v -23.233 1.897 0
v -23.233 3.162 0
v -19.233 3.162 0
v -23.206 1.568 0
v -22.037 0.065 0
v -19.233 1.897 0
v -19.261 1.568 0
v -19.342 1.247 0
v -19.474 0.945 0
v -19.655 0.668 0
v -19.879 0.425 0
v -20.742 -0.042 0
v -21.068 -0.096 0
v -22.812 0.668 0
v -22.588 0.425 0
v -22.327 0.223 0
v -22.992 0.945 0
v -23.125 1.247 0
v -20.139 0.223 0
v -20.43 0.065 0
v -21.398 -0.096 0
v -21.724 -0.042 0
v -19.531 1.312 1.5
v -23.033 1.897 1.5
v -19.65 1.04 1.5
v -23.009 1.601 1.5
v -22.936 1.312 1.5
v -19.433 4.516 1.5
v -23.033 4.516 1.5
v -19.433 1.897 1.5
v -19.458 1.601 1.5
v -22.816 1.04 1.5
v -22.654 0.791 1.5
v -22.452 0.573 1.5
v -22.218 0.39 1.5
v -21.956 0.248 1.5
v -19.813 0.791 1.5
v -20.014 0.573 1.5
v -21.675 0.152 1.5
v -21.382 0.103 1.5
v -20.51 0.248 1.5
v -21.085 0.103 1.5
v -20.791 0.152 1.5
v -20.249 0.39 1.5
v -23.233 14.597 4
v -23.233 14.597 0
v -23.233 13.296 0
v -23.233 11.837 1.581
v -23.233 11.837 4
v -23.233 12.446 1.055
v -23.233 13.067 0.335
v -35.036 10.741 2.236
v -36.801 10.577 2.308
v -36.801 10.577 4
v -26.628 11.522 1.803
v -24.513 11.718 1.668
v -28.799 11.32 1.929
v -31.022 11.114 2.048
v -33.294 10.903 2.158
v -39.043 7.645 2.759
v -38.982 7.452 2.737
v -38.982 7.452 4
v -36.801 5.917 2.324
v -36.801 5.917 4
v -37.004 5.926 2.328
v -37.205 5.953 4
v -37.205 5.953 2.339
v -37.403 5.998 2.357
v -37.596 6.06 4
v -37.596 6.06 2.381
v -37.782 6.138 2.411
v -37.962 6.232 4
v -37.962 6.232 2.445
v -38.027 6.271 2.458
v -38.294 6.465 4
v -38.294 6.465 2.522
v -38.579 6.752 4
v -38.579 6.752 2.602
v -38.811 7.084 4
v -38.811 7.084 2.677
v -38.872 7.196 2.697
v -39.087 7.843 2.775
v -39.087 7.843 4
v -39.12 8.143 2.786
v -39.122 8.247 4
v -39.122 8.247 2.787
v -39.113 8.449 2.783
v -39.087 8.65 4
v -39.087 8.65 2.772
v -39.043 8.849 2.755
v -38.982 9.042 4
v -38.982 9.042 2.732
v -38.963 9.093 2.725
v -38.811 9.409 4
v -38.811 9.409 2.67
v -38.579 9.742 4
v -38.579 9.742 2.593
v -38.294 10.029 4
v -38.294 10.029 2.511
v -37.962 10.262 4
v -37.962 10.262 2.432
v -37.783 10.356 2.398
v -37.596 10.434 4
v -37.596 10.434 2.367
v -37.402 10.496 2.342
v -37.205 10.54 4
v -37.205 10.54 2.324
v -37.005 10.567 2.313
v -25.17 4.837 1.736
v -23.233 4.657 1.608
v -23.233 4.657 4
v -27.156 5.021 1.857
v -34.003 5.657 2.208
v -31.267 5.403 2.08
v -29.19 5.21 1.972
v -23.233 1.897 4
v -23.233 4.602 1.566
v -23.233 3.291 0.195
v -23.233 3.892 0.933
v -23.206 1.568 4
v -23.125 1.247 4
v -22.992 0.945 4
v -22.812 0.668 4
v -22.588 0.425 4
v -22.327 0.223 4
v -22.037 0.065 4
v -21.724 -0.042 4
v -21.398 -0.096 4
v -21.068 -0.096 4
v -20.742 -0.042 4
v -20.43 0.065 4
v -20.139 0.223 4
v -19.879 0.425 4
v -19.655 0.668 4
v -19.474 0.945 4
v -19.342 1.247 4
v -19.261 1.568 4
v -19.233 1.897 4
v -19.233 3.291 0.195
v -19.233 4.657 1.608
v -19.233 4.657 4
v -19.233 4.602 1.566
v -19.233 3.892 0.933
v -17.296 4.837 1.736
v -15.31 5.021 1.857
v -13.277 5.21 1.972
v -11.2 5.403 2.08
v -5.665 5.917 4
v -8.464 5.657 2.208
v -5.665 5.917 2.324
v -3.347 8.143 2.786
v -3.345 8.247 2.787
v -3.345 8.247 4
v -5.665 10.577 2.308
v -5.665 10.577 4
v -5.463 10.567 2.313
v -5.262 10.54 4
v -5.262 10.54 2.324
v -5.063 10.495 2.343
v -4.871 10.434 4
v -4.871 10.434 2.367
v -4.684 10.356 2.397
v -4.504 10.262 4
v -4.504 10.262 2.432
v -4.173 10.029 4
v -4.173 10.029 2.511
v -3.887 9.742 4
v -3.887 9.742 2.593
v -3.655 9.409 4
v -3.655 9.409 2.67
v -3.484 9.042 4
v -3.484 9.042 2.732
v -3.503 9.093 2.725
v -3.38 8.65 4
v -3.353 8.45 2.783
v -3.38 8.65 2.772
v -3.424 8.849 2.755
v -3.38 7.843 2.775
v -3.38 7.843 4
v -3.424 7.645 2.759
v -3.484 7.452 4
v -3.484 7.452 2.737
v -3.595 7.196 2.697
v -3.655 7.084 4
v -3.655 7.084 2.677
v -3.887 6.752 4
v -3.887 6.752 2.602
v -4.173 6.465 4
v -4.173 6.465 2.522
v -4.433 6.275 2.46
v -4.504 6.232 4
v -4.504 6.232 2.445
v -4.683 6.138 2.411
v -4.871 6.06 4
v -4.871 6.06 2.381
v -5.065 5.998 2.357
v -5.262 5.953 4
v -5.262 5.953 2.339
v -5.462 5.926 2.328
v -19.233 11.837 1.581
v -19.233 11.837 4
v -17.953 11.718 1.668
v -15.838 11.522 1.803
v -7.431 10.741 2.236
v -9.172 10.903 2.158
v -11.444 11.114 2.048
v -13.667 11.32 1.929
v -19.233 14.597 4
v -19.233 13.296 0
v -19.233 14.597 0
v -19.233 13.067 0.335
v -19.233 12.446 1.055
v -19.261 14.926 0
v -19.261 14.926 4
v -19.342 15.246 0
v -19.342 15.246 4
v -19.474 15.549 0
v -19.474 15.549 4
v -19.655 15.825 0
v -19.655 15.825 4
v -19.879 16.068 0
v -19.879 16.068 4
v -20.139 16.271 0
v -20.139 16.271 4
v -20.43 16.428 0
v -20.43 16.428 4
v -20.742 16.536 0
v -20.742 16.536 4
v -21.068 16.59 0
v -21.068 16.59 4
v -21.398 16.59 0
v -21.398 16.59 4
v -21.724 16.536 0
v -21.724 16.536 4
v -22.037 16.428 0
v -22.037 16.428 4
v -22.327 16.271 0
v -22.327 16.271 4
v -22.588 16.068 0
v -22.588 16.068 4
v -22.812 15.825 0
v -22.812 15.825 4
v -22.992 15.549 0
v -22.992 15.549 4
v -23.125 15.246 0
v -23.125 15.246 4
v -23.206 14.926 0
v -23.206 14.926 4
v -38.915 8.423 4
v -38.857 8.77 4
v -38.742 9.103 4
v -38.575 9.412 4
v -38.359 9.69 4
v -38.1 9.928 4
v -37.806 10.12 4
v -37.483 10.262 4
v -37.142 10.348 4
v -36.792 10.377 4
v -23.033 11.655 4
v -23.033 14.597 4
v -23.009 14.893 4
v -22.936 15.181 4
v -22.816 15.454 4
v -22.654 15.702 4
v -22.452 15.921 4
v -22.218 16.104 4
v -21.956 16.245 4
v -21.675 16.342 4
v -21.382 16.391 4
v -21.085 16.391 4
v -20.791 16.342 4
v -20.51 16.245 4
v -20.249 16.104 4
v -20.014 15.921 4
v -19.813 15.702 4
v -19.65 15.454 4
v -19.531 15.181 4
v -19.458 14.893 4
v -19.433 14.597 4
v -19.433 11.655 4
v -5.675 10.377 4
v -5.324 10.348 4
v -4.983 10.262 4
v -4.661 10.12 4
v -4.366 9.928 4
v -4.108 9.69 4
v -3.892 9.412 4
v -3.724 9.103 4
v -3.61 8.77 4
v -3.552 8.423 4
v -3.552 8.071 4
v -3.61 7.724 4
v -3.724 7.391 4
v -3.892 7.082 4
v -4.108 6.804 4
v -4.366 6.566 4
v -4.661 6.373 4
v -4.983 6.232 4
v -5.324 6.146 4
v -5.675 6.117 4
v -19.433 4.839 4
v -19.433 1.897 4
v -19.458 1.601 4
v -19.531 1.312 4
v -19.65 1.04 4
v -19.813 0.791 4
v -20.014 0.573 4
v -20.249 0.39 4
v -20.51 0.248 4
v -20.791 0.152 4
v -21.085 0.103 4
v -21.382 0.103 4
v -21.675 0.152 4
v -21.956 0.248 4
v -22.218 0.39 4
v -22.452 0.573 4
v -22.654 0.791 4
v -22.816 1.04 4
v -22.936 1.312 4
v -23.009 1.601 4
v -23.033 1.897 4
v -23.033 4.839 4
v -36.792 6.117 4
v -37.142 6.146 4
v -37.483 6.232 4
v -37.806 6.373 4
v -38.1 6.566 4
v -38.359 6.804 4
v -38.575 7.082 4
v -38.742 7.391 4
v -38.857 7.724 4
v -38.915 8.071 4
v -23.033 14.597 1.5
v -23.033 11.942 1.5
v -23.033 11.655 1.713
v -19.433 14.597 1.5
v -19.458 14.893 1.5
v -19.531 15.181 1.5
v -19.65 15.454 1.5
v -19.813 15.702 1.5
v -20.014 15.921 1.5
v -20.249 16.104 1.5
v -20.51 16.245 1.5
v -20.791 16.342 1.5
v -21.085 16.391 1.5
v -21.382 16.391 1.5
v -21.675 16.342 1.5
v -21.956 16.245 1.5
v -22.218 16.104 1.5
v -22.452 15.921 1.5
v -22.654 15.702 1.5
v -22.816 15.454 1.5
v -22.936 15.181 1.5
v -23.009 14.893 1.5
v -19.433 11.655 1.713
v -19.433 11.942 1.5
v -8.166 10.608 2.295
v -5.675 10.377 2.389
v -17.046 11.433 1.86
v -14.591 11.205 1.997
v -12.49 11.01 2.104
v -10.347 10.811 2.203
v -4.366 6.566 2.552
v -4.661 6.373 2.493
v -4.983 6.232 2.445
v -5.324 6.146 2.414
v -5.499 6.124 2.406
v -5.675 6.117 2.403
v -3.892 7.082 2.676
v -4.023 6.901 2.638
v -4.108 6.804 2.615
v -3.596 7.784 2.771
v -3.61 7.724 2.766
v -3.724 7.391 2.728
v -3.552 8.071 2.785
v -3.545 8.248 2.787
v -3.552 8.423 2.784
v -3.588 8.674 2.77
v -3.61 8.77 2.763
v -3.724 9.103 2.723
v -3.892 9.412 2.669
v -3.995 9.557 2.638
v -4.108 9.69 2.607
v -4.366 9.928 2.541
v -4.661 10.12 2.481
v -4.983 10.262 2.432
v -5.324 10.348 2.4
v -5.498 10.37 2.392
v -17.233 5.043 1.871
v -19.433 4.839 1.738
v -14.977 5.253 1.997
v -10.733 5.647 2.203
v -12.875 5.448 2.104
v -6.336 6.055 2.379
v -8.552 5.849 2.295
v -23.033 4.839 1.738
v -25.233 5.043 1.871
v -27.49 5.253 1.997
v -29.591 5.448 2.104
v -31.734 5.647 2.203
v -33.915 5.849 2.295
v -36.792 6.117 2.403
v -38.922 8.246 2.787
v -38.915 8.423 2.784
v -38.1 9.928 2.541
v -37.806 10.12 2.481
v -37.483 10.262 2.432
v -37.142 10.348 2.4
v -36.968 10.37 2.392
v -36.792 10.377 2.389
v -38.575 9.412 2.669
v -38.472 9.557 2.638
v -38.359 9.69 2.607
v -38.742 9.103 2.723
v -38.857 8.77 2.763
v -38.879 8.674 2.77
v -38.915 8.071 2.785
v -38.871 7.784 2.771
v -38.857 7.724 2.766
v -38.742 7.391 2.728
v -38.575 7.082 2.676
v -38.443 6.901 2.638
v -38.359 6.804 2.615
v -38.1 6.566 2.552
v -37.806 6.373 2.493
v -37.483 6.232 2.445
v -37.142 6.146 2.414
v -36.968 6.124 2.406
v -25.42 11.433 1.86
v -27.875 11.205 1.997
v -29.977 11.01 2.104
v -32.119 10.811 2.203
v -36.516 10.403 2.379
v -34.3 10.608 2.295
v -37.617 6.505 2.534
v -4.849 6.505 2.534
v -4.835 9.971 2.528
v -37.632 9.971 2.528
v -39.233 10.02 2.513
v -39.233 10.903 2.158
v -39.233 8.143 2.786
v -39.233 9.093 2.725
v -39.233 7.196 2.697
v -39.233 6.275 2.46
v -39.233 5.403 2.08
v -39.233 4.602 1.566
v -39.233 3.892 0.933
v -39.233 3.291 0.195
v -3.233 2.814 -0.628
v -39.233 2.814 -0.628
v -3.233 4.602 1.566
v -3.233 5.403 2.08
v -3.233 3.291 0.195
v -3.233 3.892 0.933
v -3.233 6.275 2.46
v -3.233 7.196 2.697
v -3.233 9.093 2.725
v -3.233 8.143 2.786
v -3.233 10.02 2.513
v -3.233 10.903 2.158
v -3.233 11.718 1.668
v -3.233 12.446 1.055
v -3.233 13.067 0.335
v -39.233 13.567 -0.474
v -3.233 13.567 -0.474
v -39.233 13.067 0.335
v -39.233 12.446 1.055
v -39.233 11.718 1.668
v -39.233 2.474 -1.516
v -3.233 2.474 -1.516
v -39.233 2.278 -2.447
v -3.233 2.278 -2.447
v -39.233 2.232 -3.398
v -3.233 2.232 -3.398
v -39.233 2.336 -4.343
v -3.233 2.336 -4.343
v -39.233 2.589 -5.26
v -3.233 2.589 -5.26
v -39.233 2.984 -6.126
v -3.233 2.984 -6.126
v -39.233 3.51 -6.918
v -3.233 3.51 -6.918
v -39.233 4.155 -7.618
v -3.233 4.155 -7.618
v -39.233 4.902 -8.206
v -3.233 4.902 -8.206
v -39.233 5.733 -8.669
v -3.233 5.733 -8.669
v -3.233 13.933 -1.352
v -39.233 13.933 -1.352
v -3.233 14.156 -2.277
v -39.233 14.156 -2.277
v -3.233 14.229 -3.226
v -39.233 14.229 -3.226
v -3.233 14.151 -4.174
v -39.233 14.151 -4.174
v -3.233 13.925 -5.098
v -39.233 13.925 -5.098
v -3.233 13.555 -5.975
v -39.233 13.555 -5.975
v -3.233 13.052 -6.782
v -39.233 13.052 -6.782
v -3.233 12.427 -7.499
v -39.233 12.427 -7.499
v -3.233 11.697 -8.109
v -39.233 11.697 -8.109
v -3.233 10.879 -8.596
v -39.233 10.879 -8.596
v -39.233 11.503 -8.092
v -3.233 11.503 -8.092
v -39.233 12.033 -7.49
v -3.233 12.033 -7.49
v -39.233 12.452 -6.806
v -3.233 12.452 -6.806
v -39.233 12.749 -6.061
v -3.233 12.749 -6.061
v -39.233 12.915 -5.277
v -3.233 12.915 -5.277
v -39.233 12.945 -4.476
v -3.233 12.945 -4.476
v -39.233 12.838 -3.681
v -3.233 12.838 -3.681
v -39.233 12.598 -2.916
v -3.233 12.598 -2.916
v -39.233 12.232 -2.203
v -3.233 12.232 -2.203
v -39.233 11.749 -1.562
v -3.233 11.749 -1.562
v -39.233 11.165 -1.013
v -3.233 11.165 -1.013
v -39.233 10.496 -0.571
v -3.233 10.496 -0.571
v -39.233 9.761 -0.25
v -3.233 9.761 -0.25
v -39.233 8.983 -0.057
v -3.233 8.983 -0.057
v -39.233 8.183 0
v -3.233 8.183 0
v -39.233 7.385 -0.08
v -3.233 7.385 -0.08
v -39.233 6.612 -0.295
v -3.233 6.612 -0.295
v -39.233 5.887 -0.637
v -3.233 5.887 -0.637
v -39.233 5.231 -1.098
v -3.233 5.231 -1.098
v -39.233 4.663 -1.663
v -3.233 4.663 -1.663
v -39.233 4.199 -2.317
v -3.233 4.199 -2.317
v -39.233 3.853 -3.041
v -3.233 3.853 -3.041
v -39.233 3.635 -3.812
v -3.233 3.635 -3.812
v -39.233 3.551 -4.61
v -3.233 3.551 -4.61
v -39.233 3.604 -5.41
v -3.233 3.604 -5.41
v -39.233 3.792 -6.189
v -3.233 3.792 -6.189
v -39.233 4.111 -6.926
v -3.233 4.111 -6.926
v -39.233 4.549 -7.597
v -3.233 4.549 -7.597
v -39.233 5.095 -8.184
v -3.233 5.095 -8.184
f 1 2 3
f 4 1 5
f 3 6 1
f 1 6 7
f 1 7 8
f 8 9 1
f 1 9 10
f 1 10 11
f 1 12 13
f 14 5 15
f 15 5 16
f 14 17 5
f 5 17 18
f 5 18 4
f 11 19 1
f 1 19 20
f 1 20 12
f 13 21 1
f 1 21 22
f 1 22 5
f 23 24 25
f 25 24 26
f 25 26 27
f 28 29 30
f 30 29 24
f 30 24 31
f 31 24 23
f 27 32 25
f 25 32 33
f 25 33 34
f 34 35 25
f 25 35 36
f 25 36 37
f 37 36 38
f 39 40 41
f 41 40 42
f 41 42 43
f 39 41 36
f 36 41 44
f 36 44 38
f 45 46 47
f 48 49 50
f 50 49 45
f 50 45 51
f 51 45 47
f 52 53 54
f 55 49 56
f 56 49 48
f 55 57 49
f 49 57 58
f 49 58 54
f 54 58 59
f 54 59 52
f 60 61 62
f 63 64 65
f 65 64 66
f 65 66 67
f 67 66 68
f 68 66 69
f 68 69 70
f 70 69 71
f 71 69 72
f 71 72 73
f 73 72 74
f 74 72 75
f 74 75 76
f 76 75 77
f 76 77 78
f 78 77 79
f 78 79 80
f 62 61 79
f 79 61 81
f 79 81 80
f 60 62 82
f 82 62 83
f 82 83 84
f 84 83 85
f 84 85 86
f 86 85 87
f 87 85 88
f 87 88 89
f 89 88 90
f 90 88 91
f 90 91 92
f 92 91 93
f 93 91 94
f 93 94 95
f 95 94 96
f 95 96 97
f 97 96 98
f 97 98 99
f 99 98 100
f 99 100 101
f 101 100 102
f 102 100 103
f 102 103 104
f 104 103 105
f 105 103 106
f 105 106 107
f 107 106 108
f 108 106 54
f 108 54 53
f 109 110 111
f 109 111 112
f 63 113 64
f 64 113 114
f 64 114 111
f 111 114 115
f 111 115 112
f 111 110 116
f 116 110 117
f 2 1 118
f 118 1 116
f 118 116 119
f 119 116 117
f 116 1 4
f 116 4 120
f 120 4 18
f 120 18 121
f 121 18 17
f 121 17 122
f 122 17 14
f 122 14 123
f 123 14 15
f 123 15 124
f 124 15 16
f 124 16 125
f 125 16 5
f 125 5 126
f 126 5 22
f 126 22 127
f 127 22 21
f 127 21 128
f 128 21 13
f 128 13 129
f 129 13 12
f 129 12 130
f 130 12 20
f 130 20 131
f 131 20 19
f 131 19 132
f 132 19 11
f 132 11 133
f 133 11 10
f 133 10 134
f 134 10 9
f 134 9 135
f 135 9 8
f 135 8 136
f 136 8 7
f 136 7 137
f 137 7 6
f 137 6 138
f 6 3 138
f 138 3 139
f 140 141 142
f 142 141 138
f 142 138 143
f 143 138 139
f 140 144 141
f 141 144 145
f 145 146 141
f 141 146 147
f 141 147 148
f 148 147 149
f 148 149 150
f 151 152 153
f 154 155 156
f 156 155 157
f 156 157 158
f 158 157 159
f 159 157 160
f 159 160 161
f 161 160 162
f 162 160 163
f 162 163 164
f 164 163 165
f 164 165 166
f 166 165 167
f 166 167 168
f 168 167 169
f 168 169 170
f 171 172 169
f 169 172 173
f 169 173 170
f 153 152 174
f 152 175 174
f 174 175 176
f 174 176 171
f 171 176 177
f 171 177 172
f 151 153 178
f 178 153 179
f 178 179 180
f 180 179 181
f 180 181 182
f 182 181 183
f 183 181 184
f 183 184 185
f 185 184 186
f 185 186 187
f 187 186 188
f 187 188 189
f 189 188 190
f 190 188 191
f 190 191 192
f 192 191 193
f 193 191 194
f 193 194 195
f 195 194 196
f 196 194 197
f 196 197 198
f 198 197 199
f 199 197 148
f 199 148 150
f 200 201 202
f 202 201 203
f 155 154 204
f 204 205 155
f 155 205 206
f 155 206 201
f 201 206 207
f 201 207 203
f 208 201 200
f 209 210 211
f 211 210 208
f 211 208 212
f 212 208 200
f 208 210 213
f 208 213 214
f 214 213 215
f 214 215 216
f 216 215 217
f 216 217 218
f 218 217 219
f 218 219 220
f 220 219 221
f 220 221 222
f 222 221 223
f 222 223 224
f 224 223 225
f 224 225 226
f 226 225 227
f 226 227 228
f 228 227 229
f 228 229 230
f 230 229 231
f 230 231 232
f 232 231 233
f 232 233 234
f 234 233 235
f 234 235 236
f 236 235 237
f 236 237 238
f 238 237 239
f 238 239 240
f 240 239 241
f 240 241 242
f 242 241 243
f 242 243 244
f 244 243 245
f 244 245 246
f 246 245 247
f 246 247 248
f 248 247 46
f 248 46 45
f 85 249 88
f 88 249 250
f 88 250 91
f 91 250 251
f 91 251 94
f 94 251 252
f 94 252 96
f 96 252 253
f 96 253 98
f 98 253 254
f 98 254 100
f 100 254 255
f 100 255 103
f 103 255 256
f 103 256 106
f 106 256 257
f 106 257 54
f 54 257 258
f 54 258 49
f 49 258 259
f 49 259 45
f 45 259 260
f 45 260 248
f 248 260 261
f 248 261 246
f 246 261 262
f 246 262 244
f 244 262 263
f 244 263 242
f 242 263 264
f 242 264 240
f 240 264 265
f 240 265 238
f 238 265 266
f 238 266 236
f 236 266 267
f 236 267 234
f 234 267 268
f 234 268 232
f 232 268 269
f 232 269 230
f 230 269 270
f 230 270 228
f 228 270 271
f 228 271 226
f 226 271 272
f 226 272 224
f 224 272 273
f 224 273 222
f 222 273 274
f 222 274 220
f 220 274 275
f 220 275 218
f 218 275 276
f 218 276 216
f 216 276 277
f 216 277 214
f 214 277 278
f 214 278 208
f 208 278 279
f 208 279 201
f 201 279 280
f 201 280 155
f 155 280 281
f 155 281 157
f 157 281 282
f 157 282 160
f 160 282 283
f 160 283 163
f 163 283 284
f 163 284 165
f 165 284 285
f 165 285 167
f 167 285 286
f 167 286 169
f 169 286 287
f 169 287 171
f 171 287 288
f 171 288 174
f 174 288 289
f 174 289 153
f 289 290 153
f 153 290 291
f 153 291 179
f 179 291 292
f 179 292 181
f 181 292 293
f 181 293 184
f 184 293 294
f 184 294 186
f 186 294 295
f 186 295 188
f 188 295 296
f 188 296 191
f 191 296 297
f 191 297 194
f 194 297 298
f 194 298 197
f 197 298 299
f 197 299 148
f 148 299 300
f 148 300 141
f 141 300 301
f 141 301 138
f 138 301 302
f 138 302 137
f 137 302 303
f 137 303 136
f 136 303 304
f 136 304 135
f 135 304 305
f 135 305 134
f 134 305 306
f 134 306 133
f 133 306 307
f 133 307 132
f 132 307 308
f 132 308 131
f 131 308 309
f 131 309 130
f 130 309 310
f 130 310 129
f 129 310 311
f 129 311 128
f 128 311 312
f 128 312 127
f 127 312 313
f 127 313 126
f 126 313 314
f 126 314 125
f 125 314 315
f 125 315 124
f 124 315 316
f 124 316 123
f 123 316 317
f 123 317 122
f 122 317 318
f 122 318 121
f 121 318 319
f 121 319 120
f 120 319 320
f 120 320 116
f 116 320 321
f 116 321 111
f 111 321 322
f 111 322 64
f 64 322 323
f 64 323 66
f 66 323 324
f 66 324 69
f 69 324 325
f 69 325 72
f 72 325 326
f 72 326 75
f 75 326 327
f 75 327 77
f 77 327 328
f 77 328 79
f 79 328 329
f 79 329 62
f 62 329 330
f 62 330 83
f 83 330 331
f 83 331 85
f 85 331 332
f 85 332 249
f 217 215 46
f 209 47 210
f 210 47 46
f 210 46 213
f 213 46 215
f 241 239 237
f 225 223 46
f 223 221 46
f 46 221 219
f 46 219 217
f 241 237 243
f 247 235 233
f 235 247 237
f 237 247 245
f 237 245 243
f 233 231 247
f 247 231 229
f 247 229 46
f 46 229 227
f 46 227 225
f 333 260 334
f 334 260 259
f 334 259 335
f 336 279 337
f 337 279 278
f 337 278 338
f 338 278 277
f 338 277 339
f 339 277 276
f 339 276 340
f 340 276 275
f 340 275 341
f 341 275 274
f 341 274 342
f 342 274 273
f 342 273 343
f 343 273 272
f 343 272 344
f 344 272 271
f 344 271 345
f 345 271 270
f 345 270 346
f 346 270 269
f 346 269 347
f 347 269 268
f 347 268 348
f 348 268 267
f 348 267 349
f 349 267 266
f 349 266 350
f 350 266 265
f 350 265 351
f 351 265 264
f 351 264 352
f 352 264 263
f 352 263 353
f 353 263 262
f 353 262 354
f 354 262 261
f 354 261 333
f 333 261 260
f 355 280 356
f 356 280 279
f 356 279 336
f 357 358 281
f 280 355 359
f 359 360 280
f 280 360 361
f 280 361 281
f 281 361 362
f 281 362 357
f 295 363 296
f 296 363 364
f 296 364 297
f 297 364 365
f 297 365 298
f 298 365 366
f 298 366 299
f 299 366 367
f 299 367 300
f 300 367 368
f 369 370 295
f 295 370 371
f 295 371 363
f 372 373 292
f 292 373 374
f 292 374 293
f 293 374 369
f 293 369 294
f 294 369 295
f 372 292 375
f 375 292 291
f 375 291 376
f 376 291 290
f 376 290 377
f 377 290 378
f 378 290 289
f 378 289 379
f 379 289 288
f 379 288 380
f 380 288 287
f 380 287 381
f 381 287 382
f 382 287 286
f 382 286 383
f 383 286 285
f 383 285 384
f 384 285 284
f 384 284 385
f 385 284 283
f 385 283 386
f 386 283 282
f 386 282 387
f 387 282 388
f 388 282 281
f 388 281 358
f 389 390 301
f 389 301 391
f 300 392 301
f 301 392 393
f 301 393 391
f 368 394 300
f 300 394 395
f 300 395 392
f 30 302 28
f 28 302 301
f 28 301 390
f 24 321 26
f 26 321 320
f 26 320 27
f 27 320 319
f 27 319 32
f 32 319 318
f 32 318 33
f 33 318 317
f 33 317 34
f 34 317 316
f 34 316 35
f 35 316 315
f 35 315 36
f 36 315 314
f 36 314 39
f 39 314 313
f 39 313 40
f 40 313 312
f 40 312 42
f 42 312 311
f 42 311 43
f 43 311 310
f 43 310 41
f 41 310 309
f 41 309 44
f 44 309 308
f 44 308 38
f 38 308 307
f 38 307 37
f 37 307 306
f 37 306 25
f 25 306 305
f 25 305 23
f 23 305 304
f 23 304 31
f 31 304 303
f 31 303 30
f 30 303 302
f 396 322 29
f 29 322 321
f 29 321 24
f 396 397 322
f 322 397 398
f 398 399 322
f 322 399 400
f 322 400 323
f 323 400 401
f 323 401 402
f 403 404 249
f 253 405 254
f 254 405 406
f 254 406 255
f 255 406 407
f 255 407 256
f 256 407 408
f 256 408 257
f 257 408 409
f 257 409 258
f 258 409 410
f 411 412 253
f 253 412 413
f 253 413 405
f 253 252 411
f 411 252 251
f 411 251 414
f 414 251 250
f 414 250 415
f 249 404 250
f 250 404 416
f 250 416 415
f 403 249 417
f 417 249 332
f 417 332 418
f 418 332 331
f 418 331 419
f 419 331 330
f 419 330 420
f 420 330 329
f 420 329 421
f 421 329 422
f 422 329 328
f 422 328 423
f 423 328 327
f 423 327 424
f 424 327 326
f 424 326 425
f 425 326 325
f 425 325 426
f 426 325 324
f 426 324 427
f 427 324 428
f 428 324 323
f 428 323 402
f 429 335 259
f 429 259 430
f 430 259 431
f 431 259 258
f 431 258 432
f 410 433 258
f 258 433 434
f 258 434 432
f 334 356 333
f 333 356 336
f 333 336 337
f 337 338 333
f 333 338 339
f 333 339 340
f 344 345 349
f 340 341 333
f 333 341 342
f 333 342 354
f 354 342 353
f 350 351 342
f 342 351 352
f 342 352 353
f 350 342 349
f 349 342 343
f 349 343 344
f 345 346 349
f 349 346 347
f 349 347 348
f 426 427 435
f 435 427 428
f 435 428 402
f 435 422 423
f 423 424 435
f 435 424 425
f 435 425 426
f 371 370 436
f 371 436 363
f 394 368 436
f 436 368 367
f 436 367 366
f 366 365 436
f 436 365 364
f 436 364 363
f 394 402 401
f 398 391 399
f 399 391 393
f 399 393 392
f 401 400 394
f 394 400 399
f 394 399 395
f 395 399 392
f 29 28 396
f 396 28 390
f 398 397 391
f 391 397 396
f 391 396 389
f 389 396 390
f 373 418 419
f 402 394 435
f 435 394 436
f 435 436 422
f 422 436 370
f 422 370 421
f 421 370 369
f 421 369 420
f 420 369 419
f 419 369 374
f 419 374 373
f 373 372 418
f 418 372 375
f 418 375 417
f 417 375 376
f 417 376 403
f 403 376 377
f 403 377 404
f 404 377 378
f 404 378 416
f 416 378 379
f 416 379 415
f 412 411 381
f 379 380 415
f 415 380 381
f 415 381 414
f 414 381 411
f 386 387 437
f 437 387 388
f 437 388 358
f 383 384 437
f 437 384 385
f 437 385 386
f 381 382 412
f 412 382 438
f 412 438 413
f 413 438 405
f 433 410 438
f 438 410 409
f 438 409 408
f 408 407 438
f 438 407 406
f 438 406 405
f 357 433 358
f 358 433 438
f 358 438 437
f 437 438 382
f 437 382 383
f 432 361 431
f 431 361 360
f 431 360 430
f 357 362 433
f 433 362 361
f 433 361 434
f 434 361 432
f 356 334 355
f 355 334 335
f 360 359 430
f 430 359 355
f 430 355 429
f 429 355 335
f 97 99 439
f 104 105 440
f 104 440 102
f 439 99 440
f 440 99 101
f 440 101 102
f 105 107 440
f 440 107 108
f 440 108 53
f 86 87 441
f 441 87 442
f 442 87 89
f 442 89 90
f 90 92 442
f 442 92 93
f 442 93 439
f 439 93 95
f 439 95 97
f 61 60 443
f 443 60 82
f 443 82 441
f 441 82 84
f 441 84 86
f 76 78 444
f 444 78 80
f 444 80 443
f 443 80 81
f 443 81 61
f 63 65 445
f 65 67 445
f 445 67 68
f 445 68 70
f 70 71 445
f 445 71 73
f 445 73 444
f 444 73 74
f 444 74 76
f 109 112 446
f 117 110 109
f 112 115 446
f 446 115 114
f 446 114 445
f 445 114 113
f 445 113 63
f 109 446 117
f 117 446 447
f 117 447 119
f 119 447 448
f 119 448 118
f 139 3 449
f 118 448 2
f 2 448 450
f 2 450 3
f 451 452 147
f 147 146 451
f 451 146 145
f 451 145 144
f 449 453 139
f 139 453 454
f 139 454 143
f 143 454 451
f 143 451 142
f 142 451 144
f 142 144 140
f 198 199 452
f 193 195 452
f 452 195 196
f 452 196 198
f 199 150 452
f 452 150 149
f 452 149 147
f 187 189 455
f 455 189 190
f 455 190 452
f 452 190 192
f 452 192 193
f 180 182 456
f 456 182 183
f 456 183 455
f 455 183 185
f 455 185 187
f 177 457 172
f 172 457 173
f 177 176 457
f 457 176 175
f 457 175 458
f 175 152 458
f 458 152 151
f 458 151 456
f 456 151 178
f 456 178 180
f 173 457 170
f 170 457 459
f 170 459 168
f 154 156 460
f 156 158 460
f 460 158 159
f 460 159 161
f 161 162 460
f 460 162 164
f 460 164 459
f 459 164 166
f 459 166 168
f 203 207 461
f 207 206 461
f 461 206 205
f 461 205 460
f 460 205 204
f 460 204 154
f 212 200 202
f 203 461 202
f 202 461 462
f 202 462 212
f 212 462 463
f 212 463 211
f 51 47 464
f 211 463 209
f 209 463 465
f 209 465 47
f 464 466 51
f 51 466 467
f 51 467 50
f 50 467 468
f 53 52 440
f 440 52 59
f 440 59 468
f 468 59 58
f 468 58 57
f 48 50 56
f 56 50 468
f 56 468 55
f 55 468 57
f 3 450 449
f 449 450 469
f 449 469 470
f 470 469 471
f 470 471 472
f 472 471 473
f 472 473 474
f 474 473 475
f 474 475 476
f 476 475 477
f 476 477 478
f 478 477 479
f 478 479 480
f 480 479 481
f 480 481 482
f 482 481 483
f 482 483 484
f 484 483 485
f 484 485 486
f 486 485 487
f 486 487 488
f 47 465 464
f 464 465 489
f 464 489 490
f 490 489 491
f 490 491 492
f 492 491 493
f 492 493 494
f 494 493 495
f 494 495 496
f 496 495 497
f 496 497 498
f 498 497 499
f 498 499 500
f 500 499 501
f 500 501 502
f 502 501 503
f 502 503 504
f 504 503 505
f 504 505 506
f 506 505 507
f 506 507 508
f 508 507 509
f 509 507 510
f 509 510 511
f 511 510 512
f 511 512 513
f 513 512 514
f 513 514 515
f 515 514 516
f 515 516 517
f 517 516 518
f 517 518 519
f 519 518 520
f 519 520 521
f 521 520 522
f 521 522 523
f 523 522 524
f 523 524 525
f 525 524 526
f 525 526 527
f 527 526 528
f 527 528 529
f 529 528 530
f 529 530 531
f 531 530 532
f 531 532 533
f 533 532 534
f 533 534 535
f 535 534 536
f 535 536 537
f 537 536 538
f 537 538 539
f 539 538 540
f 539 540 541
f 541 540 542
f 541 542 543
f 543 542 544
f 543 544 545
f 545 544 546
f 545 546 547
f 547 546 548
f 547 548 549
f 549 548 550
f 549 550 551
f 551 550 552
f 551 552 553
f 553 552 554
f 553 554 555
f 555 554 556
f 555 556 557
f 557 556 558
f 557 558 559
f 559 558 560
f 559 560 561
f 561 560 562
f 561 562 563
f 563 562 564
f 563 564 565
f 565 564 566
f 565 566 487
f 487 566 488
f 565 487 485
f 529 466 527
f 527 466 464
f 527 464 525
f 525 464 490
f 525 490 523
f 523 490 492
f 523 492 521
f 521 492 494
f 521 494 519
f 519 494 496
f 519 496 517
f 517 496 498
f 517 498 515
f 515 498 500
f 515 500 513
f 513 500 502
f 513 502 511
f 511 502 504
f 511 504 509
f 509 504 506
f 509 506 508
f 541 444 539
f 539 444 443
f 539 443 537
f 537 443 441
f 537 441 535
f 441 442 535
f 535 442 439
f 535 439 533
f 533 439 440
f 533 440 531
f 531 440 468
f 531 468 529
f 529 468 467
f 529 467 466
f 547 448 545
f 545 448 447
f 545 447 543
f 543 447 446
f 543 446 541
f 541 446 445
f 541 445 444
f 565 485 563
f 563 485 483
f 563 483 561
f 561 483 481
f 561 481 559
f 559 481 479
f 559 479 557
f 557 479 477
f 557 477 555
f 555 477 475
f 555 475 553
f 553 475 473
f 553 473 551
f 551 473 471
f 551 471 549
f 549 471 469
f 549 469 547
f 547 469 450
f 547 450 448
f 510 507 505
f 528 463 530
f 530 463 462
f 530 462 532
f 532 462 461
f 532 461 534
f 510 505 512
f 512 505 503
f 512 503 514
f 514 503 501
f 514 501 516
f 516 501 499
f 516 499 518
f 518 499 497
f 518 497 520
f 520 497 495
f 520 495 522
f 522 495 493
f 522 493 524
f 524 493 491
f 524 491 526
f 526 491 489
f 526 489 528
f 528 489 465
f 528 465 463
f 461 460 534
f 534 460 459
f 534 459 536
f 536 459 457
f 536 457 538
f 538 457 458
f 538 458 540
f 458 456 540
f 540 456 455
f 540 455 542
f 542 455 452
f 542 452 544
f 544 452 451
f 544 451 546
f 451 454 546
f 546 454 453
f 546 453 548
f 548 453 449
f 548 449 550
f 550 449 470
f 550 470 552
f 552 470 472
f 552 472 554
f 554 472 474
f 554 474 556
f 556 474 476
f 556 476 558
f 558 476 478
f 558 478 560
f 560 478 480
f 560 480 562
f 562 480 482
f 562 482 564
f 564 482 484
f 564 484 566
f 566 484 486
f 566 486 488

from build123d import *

# Parameters (mm, degrees)
BOSS_EXTRUDE3_DEPTH      = 4
CUT_EXTRUDE1_DEPTH       = 2.5
BOSS_EXTRUDE4_DEPTH      = 16
BOSS_EXTRUDE4_DEPTH_BACK = 20


with BuildPart() as part:
    # Sketch1 → Boss-Extrude3 (new body)
    with BuildSketch(Plane.XY):
        with BuildLine():
            Line((-23.233269255, 11.836996221), (-36.801095313, 10.577126659))
            ThreePointArc((-36.801095313, 10.577126659), (-39.121917966, 8.246850113), (-36.801095313, 5.916573567))
            Line((-36.801095313, 5.916573567), (-23.233269255, 4.656704004))
            Line((-23.233269255, 4.656704004), (-23.233269255, 1.896850113))
            ThreePointArc((-23.233269255, 1.896850113), (-21.233269255, -0.103149887), (-19.233269255, 1.896850113))
            Line((-19.233269255, 1.896850113), (-19.233269255, 4.656704004))
            Line((-19.233269255, 4.656704004), (-5.665443198, 5.916573567))
            ThreePointArc((-5.665443198, 5.916573567), (-3.344620545, 8.246850113), (-5.665443198, 10.577126659))
            Line((-5.665443198, 10.577126659), (-19.233269255, 11.836996221))
            Line((-19.233269255, 11.836996221), (-19.233269255, 14.596850113))
            ThreePointArc((-19.233269255, 14.596850113), (-21.233269255, 16.596850113), (-23.233269255, 14.596850113))
            Line((-23.233269255, 14.596850113), (-23.233269255, 11.836996221))
        make_face()
    extrude(amount=BOSS_EXTRUDE3_DEPTH)

    # Sketch4 → Cut-Extrude1 (cut)
    with BuildSketch(Plane.XY.offset(4)):
        with BuildLine():
            Line((-23.033269255, 11.654707255), (-36.791622165, 10.377145914))
            ThreePointArc((-36.791622165, 10.377145914), (-38.921917966, 8.246850113), (-36.791622165, 6.116554311))
            Line((-36.791622165, 6.116554311), (-23.033269255, 4.83899297))
            Line((-23.033269255, 4.83899297), (-23.033269255, 1.896850113))
            ThreePointArc((-23.033269255, 1.896850113), (-21.233269255, 0.096850113), (-19.433269255, 1.896850113))
            Line((-19.433269255, 1.896850113), (-19.433269255, 4.83899297))
            Line((-19.433269255, 4.83899297), (-5.674916346, 6.116554311))
            ThreePointArc((-5.674916346, 6.116554311), (-3.544620545, 8.246850113), (-5.674916346, 10.377145914))
            Line((-5.674916346, 10.377145914), (-19.433269255, 11.654707255))
            Line((-19.433269255, 11.654707255), (-19.433269255, 14.596850113))
            ThreePointArc((-19.433269255, 14.596850113), (-21.233269255, 16.396850113), (-23.033269255, 14.596850113))
            Line((-23.033269255, 14.596850113), (-23.033269255, 11.654707255))
        make_face()
    extrude(amount=-CUT_EXTRUDE1_DEPTH, mode=Mode.SUBTRACT)

    # Sketch6 → Boss-Extrude4 (add, two sides)
    with BuildSketch(Plane(origin=(-19.233269255, 0, 0), x_dir=(0, 0, -1), z_dir=(1, 0, 0))) as boss_extrude4_sk:
        with BuildLine():
            ThreePointArc((8.595792289, 10.879439419), (0.000480489, 8.183014626), (8.669380496, 5.733470939))
            ThreePointArc((8.669380496, 5.733470939), (-2.786430444, 8.143161335), (8.595792289, 10.879439419))
        make_face()
    extrude(amount=BOSS_EXTRUDE4_DEPTH)
    extrude(boss_extrude4_sk.sketch, amount=-BOSS_EXTRUDE4_DEPTH_BACK)


solid = part.part
